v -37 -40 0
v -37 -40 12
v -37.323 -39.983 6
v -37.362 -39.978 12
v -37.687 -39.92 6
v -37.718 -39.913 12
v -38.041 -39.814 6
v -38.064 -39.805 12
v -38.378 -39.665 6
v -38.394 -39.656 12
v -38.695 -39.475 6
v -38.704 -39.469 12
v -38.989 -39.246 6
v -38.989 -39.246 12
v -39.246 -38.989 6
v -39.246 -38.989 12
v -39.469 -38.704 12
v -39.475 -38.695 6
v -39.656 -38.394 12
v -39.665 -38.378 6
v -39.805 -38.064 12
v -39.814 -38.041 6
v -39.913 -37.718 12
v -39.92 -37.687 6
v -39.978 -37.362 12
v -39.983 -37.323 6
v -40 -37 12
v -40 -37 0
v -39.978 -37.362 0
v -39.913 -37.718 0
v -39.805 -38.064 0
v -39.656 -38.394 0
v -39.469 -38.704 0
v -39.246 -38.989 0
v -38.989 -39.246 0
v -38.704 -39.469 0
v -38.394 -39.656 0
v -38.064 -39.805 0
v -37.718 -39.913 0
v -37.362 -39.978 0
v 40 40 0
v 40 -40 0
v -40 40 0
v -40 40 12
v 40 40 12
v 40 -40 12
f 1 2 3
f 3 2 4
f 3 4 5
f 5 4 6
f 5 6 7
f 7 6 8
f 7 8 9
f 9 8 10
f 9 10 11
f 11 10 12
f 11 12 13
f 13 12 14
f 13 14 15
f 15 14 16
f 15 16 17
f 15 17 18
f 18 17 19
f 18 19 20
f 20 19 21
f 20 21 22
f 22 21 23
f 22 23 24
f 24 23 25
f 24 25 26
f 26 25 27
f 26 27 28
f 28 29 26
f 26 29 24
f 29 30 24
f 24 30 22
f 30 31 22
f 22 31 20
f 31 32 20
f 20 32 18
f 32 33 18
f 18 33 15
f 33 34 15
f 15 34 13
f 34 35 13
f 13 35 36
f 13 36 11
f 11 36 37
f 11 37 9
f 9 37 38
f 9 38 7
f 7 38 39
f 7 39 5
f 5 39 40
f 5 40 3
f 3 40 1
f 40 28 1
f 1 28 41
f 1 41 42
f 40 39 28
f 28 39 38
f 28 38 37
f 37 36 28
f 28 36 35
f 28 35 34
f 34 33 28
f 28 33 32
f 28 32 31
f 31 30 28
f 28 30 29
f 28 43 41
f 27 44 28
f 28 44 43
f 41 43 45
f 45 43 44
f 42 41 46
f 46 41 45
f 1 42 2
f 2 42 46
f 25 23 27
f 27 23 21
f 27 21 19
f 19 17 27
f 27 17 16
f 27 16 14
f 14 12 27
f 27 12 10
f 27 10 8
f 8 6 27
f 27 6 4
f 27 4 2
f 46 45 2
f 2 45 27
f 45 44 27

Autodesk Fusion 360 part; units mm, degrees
sketch "Sketch1" plane through (0, 0, 0) normal (0, 0, 1) x (1, 0, 0)
  line L0 (-40, -40) -> (40, -40)
  line L1 (40, -40) -> (40, 40)
  line L2 (40, 40) -> (-40, 40)
  line L3 (-40, 40) -> (-40, -40)
  line L4 (-40, -40) -> (40, 40) construction
  line L5 (40, -40) -> (-40, 40) construction
  dimension "d1" = 80
  dimension "d2" = 80
extrude "Extrude1" add sketch "Sketch1" along normal blind 12
fillet "Fillet1" radius 3 1 edges at (-40, -40, 6)
equation "d1 = d2"
